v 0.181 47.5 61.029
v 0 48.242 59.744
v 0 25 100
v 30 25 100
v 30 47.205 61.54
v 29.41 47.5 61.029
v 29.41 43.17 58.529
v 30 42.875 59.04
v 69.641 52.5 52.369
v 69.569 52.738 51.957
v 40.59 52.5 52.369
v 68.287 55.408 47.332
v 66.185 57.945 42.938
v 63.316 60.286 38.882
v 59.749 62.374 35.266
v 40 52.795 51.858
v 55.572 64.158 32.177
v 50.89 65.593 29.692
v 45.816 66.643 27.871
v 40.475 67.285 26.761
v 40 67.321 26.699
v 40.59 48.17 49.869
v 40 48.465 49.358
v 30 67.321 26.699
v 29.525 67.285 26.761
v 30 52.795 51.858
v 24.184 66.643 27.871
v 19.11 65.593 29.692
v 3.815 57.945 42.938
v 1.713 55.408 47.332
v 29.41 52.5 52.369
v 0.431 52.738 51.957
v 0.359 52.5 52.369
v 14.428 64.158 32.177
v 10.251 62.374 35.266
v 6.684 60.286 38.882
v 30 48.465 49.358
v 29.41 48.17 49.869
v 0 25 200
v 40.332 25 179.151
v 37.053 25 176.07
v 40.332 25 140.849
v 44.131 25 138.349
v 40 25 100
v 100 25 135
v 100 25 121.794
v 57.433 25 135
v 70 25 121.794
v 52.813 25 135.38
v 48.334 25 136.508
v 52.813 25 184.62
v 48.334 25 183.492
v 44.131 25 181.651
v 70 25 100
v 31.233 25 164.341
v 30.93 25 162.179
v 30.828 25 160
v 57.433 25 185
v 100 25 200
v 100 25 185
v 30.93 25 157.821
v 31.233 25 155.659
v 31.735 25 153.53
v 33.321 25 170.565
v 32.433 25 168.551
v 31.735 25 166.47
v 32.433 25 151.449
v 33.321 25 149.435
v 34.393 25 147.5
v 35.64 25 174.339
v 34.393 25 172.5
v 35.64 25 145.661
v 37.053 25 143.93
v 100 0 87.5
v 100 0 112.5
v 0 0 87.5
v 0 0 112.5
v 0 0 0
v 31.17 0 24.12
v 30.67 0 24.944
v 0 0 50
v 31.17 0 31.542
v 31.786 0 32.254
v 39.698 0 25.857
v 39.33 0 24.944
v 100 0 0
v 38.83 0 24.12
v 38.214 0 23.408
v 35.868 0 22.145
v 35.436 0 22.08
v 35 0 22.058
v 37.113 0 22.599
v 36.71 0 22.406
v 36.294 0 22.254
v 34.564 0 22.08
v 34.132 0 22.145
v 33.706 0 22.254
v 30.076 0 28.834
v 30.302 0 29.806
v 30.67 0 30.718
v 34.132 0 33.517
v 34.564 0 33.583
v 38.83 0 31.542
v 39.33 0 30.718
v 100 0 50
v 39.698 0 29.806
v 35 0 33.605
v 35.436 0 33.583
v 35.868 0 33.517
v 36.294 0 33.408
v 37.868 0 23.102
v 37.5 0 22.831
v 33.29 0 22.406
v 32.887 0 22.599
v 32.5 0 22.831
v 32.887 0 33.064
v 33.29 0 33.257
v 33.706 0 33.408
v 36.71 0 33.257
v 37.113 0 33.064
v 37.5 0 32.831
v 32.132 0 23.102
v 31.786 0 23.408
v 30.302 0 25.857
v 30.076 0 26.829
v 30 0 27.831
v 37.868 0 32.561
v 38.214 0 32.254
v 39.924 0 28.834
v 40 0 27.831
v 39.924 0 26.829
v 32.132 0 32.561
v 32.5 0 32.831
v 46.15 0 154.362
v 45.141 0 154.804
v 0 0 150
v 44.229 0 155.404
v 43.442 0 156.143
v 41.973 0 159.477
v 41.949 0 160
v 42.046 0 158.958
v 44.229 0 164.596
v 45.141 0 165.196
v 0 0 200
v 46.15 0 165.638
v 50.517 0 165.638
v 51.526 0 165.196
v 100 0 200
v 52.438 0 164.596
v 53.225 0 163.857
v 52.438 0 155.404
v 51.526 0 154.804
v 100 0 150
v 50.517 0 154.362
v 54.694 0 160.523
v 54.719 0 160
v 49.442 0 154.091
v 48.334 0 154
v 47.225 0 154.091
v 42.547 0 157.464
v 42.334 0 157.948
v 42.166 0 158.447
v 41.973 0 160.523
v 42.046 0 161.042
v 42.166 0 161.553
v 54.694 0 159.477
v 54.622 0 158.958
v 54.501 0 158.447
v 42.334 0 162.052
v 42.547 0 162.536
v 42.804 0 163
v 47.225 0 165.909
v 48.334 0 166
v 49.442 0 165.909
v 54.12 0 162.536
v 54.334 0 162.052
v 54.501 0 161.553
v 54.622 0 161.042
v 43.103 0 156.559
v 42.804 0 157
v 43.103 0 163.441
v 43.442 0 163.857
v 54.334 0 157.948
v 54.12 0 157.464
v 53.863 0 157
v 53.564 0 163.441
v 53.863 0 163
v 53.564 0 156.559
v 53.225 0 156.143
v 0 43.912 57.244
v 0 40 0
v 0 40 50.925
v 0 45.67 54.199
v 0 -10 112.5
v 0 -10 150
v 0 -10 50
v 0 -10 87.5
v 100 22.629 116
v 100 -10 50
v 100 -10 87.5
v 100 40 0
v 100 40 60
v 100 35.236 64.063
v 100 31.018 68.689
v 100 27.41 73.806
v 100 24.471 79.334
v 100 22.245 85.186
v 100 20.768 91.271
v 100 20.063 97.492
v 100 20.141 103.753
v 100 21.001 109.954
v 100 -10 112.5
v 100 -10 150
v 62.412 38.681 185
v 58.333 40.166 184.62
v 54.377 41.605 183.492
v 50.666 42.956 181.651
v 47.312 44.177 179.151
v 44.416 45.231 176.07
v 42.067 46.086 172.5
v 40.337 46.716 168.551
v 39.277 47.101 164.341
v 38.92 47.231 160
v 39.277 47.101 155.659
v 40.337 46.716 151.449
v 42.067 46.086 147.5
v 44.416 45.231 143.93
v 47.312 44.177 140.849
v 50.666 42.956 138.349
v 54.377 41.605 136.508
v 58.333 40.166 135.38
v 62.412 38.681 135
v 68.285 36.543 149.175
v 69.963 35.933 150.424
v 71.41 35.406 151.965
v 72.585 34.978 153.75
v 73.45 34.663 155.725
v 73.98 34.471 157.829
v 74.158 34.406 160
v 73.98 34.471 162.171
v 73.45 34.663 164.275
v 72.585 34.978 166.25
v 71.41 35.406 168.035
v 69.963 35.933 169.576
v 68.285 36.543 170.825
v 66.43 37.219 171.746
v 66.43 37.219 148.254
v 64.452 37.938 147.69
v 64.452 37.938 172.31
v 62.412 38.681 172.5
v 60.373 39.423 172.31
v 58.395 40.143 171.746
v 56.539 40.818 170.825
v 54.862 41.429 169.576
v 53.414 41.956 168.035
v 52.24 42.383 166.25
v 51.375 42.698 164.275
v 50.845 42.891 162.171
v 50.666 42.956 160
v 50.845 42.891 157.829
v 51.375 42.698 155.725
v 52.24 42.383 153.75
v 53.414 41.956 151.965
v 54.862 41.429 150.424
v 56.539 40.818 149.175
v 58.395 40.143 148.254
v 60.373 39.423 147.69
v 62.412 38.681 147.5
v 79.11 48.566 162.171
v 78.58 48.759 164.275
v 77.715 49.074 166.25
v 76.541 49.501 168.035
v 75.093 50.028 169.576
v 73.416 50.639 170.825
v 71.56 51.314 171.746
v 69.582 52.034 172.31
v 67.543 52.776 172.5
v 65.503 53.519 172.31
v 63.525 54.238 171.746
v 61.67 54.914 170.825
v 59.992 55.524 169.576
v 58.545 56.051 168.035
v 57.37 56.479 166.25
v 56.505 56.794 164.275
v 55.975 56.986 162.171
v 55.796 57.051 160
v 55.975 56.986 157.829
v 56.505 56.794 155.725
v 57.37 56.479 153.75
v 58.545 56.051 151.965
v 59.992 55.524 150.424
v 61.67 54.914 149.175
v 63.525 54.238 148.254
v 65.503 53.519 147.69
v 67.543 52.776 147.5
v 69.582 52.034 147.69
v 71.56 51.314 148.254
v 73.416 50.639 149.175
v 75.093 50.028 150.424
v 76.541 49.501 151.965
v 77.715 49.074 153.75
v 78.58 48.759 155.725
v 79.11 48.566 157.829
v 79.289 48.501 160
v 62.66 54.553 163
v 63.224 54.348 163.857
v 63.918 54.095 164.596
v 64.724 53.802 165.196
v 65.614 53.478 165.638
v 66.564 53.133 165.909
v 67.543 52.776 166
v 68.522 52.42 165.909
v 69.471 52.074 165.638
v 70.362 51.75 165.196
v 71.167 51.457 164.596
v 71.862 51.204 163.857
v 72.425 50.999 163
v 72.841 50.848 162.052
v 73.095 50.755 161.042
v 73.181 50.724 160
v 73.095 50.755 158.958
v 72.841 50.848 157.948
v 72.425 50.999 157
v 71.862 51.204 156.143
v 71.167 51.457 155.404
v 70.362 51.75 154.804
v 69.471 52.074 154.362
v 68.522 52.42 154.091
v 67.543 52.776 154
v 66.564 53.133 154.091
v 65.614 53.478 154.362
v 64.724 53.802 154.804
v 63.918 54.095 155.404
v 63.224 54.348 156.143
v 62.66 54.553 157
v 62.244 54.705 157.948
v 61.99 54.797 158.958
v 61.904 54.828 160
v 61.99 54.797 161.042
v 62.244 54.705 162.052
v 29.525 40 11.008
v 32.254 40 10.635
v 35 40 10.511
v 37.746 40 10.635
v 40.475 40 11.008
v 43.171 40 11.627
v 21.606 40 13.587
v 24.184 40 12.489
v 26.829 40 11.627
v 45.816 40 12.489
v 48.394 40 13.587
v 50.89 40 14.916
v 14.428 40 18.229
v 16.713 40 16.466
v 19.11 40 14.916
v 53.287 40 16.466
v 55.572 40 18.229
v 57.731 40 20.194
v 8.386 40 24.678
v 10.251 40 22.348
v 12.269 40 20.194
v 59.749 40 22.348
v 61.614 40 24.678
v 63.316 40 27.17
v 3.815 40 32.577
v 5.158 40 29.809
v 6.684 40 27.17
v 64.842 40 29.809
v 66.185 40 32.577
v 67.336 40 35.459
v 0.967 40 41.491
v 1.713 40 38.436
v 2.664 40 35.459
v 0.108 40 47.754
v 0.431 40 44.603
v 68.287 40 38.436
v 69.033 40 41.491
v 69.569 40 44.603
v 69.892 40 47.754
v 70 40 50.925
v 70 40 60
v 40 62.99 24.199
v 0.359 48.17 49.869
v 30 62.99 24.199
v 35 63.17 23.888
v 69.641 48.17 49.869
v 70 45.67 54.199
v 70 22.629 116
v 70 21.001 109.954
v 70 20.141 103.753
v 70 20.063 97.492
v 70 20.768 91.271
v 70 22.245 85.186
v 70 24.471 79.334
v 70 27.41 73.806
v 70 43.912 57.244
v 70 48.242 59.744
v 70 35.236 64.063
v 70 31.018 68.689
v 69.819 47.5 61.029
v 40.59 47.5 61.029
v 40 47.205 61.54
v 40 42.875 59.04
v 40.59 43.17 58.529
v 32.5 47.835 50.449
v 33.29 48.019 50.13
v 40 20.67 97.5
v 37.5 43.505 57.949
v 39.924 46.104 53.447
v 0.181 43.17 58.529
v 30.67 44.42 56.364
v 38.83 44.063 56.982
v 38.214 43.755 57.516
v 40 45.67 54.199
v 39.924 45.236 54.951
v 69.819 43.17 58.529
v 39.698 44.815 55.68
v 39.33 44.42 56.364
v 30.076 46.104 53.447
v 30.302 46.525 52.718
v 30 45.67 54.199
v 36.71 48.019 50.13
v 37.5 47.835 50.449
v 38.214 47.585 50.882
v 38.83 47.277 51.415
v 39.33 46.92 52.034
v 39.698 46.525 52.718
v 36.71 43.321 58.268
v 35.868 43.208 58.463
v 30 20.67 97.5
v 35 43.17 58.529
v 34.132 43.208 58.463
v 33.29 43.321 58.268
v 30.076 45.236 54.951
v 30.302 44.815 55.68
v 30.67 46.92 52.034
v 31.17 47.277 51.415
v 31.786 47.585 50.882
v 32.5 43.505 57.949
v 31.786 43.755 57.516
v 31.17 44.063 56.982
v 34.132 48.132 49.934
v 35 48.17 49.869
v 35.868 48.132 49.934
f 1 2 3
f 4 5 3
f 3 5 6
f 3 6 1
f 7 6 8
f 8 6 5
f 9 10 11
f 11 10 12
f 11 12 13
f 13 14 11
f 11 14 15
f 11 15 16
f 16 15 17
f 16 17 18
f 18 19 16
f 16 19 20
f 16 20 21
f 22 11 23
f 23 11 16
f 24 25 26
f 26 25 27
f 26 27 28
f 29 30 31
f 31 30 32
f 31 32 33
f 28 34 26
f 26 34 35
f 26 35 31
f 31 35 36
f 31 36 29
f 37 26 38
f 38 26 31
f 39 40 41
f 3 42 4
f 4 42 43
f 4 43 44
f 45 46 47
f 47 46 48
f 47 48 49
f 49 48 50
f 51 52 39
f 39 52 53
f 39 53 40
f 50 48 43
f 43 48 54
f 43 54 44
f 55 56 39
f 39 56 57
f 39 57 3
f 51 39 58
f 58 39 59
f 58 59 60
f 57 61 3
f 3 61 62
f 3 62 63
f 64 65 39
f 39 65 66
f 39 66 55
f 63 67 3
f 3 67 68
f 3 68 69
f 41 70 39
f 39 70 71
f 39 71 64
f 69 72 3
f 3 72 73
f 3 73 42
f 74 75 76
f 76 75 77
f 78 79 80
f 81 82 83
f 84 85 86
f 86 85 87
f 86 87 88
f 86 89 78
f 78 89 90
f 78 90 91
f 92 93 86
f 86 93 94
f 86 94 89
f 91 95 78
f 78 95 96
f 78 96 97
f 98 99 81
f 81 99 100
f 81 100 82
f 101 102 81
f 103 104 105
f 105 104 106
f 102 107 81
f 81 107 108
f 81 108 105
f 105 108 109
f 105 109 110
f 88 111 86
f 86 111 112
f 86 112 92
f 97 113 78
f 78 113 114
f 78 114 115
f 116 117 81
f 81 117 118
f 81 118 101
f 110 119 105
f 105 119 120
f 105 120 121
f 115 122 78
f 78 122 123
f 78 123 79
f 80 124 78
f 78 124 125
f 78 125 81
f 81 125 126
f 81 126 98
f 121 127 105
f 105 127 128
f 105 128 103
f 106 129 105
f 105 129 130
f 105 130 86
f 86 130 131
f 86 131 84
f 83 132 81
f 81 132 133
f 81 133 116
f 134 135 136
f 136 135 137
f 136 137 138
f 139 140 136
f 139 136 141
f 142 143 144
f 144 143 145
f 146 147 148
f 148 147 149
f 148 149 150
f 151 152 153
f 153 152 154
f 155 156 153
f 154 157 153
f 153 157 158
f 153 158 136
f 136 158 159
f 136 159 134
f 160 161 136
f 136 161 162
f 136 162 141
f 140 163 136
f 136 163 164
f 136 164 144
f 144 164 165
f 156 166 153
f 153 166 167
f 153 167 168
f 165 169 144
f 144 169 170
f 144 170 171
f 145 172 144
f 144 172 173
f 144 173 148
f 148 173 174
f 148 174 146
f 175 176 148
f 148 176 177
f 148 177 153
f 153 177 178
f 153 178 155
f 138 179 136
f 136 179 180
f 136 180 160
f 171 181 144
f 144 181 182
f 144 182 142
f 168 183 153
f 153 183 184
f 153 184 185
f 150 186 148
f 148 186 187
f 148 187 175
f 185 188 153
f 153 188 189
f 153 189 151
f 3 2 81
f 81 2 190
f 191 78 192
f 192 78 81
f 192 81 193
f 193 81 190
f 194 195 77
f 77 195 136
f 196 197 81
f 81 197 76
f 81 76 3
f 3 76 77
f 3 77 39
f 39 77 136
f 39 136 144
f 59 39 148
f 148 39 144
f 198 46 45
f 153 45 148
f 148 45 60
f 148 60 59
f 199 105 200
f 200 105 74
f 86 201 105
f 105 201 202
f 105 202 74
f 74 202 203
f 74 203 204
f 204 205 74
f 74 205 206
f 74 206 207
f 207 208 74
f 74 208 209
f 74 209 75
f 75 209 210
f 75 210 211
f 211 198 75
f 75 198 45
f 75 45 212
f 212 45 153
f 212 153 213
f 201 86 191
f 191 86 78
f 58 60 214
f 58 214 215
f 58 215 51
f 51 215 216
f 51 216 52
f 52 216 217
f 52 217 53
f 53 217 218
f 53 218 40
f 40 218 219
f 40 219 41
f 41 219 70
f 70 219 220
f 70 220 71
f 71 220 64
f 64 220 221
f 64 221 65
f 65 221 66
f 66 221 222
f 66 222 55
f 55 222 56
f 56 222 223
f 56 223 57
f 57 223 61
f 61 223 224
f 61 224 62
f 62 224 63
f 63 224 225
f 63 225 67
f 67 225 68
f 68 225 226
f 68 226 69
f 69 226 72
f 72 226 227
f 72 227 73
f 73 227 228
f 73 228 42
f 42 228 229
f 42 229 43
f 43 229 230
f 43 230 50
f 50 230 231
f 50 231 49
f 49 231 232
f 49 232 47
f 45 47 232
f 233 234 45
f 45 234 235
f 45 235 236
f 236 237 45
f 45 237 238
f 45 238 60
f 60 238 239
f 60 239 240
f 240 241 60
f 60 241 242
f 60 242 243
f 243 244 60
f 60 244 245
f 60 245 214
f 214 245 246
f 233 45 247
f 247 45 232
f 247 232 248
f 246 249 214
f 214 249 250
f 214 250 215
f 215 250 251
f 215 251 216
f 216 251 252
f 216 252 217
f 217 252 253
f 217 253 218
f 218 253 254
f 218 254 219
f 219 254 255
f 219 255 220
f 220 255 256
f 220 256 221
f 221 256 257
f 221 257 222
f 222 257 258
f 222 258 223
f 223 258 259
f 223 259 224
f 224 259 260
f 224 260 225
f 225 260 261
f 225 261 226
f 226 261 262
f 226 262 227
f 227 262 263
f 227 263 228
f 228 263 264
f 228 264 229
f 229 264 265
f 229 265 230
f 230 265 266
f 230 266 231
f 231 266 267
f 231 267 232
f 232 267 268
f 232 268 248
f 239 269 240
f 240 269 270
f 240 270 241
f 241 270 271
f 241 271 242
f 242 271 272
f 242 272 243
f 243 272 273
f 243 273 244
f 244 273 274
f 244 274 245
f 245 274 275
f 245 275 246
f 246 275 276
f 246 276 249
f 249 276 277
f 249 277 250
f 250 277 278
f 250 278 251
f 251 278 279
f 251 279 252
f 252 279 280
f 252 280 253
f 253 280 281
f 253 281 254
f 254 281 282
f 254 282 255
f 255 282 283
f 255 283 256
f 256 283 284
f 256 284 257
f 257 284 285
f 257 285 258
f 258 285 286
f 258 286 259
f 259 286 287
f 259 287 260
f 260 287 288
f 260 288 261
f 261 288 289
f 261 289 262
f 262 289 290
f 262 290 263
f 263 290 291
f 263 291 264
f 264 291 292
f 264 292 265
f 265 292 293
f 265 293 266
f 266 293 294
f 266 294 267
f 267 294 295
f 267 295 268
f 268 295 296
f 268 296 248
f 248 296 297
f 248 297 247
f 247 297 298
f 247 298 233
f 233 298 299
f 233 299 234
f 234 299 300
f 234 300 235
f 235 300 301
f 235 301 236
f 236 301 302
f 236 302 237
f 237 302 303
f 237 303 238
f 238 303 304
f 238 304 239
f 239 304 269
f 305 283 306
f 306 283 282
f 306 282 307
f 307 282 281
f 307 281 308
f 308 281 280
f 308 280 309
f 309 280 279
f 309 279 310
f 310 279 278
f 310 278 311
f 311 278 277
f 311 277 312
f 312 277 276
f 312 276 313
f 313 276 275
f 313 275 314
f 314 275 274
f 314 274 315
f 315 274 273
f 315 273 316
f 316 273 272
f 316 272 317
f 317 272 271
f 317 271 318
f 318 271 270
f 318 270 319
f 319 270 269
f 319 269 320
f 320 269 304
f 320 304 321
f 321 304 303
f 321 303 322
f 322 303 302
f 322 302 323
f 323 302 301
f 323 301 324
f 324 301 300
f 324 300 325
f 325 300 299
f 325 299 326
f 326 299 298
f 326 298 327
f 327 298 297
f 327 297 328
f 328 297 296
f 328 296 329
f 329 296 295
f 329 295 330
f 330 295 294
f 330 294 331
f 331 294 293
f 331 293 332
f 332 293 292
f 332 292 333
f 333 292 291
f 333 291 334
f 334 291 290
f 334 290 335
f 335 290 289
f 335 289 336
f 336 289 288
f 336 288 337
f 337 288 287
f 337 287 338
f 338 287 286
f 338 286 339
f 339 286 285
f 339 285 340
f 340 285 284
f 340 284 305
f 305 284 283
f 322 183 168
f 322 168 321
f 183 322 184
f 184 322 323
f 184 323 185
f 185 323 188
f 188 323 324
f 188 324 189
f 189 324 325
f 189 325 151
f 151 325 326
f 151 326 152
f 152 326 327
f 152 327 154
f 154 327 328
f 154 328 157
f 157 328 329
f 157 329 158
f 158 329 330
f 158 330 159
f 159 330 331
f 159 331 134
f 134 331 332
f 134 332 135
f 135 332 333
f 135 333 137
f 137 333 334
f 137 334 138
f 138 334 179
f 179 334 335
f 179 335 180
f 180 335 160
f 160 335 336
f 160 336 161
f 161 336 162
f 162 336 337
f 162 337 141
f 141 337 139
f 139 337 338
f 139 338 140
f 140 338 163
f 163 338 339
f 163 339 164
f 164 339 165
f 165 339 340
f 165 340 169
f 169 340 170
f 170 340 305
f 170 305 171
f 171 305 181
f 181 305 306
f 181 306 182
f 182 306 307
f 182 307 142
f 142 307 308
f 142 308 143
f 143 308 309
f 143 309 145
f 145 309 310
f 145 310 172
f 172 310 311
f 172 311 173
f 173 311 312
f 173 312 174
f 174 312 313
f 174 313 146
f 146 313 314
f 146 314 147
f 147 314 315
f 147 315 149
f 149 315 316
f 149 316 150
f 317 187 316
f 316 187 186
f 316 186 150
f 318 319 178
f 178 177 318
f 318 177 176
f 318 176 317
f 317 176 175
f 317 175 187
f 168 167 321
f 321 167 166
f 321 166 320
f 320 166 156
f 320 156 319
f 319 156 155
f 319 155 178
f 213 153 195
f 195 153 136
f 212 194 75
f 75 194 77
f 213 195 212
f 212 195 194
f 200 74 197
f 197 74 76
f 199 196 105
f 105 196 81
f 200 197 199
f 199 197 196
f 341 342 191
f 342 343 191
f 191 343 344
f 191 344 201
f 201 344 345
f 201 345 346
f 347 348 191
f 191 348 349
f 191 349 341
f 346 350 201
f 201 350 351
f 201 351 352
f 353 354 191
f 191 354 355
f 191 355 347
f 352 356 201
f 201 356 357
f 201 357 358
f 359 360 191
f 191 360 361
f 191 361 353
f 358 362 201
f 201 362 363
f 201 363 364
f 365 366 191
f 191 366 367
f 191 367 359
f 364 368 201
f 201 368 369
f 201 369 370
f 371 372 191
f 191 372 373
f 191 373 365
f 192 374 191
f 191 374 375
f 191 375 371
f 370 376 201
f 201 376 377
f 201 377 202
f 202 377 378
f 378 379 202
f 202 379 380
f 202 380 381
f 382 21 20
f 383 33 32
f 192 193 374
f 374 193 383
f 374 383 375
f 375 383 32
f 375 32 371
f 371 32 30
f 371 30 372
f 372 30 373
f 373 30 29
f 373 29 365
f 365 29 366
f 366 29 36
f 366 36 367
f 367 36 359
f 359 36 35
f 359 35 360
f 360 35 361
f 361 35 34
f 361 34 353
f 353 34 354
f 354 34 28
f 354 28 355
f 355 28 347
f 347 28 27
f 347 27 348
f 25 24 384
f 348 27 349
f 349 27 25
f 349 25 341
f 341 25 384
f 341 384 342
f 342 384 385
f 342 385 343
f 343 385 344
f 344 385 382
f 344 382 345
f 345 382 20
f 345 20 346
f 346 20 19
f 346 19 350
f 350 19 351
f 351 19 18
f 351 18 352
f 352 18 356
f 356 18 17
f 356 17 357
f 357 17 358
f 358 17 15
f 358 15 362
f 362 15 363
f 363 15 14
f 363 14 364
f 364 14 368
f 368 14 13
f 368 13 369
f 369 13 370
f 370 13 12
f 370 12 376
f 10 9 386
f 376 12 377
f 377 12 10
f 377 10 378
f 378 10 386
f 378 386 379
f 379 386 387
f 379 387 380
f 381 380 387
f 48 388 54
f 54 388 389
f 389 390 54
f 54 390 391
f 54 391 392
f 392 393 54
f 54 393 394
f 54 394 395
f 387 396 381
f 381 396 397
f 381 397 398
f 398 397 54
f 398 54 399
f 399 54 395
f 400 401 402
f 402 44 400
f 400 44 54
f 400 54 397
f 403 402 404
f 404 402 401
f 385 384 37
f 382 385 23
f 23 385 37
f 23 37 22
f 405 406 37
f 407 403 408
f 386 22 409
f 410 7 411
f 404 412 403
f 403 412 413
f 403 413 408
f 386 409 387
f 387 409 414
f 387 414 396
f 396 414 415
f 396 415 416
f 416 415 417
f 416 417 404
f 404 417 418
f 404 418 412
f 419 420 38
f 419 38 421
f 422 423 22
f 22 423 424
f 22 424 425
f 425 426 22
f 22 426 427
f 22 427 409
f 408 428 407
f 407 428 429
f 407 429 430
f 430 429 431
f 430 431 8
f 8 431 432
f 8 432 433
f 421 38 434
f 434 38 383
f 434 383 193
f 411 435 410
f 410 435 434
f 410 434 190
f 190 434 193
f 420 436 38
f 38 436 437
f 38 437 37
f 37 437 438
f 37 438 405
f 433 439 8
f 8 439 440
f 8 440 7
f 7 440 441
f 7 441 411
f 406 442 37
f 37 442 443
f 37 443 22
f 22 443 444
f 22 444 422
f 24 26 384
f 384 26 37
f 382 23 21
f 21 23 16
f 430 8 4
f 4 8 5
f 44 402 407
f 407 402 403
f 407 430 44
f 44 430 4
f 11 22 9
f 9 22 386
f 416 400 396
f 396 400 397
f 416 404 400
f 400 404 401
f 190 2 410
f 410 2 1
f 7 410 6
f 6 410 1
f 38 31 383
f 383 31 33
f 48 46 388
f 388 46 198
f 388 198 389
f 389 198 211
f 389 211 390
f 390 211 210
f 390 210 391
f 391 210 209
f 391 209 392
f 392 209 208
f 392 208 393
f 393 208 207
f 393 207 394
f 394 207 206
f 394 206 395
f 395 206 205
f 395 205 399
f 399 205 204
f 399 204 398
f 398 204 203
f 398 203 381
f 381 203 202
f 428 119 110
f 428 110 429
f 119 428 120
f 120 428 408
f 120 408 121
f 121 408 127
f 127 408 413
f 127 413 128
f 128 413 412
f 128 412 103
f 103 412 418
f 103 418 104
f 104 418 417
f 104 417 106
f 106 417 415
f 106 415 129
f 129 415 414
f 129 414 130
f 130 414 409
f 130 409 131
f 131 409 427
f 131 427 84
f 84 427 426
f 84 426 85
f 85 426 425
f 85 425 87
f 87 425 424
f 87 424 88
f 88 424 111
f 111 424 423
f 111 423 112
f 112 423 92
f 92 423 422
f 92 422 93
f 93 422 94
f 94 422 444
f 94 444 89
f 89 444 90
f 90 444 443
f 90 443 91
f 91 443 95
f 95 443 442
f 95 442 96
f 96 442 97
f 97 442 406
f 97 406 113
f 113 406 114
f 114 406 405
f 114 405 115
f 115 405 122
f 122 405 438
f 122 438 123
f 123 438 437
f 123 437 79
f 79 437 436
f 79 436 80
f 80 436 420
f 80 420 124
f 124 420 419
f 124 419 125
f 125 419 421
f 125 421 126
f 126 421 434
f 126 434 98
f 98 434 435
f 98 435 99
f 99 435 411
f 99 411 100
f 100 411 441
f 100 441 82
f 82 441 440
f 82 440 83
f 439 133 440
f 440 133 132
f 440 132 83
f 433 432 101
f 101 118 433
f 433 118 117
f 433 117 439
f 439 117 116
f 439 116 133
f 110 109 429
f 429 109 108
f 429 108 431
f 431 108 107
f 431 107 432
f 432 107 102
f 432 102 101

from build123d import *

# Parameters (mm, degrees)
SKETCH1_W            = 100
SKETCH1_H            = 200
BOSS_EXTRUDE1_DEPTH  = 25
BOSS_EXTRUDE3_REACH  = 224.221
SKETCH4_R            = 12.5
BOSS_EXTRUDE4_DEPTH  = 15
SKETCH5_R            = 6
CUT_EXTRUDE1_DEPTH   = 225.303099777
SKETCH6_W            = 100
SKETCH6_H            = 37.5
BOSS_EXTRUDE5_DEPTH  = 10
SKETCH7_W            = 100
SKETCH7_H            = 37.5
BOSS_EXTRUDE6_DEPTH  = 10
SKETCH8_W            = 100
SKETCH8_H            = 60
BOSS_EXTRUDE7_DEPTH  = 15
BOSS_EXTRUDE9_DEPTH  = 37
SKETCH12_R           = 7.5
CUT_EXTRUDE7_DEPTH   = 5
CUT_EXTRUDE8_DEPTH   = 5
CUT_EXTRUDE9_DEPTH   = 5
BOSS_EXTRUDE10_DEPTH = 30
CUT_EXTRUDE10_DEPTH  = 30
SKETCH18_R           = 5
CUT_EXTRUDE11_DEPTH  = 206.831491767


with BuildPart() as part:
    # Sketch1 → Boss-Extrude1 (new body)
    with BuildSketch(Plane(origin=(0, 0, 0), x_dir=(1, 0, 0), z_dir=(0, 1, 0))):
        with Locations((50, -100)):
            Rectangle(SKETCH1_W, SKETCH1_H)
    extrude(amount=BOSS_EXTRUDE1_DEPTH)

    # Boss-Extrude3: up to this face of the body (flat: up to its plane)
    boss_extrude3_end = Plane(part.part.faces().sort_by_distance((50, 0, 100))[0])
    # Sketch3 → Boss-Extrude3 (add, up to the picked face)
    with BuildSketch(Plane(origin=(19.732622965, 54.214936023, 0), x_dir=(0, 0, -1), z_dir=(0.34202014332566943, 0.9396926207859081, 0)), mode=Mode.PRIVATE) as boss_extrude3_sk1:
        with BuildLine():
            Line((-185, -85.418758495), (-135, -85.418758495))
            Line((-135, -85.418758495), (-135, -45.418758495))
            ThreePointArc((-135, -45.418758495), (-160, -20.418758495), (-185, -45.418758495))
            Line((-185, -45.418758495), (-185, -85.418758495))
        make_face()
    boss_extrude3_tool1 = split(extrude(boss_extrude3_sk1.sketch, amount=-BOSS_EXTRUDE3_REACH, mode=Mode.PRIVATE), bisect_by=boss_extrude3_end, keep=Keep.BOTH, mode=Mode.PRIVATE)
    add(boss_extrude3_tool1.solids().sort_by(Axis((71.735431, 35.287462, 160), (-0.34202014332566943, -0.9396926207859081, 0)))[0])

    # Sketch4 → Boss-Extrude4 (add)
    with BuildSketch(Plane(origin=(19.732622965, 54.214936023, 0), x_dir=(0.9396926207859082, -0.34202014332566943, 0), z_dir=(0.34202014332566943, 0.9396926207859082, 0))):
        with Locations(Location((45.418758495, -160, 0), (0, 0, 180))):
            Circle(SKETCH4_R)
    extrude(amount=BOSS_EXTRUDE4_DEPTH)

    # Sketch5 → Cut-Extrude1 (cut, through all)
    with BuildSketch(Plane(origin=(24.862925115, 68.310325335, 0), x_dir=(0.9396926207859082, -0.34202014332566943, 0), z_dir=(0.34202014332566943, 0.9396926207859082, 0))):
        with Locations(Location((45.418758495, -160, 0), (0, 0, 180))):
            Circle(SKETCH5_R)
    extrude(amount=-CUT_EXTRUDE1_DEPTH, mode=Mode.SUBTRACT)

    # Sketch6 → Boss-Extrude5 (add)
    with BuildSketch(Plane.XZ):
        with Locations((50, 131.25)):
            Rectangle(SKETCH6_W, SKETCH6_H)
    extrude(amount=BOSS_EXTRUDE5_DEPTH)

    # Sketch7 → Boss-Extrude6 (add)
    with BuildSketch(Plane.XZ):
        with Locations((50, 68.75)):
            Rectangle(SKETCH7_W, SKETCH7_H)
    extrude(amount=BOSS_EXTRUDE6_DEPTH)

    # Sketch8 → Boss-Extrude7 (add)
    with BuildSketch(Plane(origin=(0, 25, 0), x_dir=(1, 0, 0), z_dir=(0, 1, 0))):
        with Locations((50, -30)):
            Rectangle(SKETCH8_W, SKETCH8_H)
    extrude(amount=BOSS_EXTRUDE7_DEPTH)

    # Sketch10 → Boss-Extrude9 (add)
    with BuildSketch(Plane(origin=(0, 62.051270189, 35.825317547), x_dir=(1, 0, 0), z_dir=(0, 0.866025403784438, 0.500000000000001))):
        with BuildLine():
            Line((0, -74.102540378), (70, -74.102540378))
            Line((70, -74.102540378), (70, -24.102540378))
            ThreePointArc((70, -24.102540378), (35, 10.897459622), (0, -24.102540378))
            Line((0, -24.102540378), (0, -74.102540378))
        make_face()
    extrude(amount=-BOSS_EXTRUDE9_DEPTH)

    # Sketch12 → Cut-Extrude7 (cut)
    with BuildSketch(Plane(origin=(0, 62.051270189, 35.825317547), x_dir=(1, 0, 0), z_dir=(0, 0.8660254037844382, 0.500000000000001))):
        with Locations(Location((35, -24.102540378, 0), (0, 0, 270))):
            Circle(SKETCH12_R)
    extrude(amount=-CUT_EXTRUDE7_DEPTH, mode=Mode.SUBTRACT)

    # Sketch13 → Cut-Extrude8 (cut)
    with BuildSketch(Plane(origin=(0, 62.051270189, 35.825317547), x_dir=(1, 0, 0), z_dir=(0, 0.8660254037844382, 0.500000000000001))):
        with BuildLine():
            Line((35, -74.102540378), (40, -74.102540378))
            Line((40, -74.102540378), (40, -29.507888224))
            ThreePointArc((40, -29.507888224), (35, -31.465813111), (30, -29.507888224))
            Line((30, -29.507888224), (30, -74.102540378))
            Line((30, -74.102540378), (35, -74.102540378))
        make_face()
        with BuildLine():
            Line((40, -18.697192533), (40, 10.538475773))
            ThreePointArc((40, 10.538475773), (35, 10.897459622), (30, 10.538475773))
            Line((30, 10.538475773), (30, -18.697192533))
            ThreePointArc((30, -18.697192533), (35, -16.739267646), (40, -18.697192533))
        make_face()
    extrude(amount=-CUT_EXTRUDE8_DEPTH, mode=Mode.SUBTRACT)

    # Sketch14 → Cut-Extrude9 (cut)
    with BuildSketch(Plane(origin=(0, 62.051270189, 35.825317547), x_dir=(1, 0, 0), z_dir=(0, 0.8660254037844382, 0.500000000000001))):
        with BuildLine():
            Line((29.409830056, -19.102540378), (0.181014248, -19.102540378))
            ThreePointArc((0.181014248, -19.102540378), (-0.176153411, -24.102540378), (0.181014248, -29.102540378))
            Line((0.181014248, -29.102540378), (29.409830056, -29.102540378))
            ThreePointArc((29.409830056, -29.102540378), (27.5, -24.102540378), (29.409830056, -19.102540378))
        make_face()
        with BuildLine():
            Line((40.590169944, -19.102540378), (69.818985752, -19.102540378))
            ThreePointArc((69.818985752, -19.102540378), (70.176153411, -24.102540378), (69.818985752, -29.102540378))
            Line((69.818985752, -29.102540378), (40.590169944, -29.102540378))
            ThreePointArc((40.590169944, -29.102540378), (42.5, -24.102540378), (40.590169944, -19.102540378))
        make_face()
    extrude(amount=-CUT_EXTRUDE9_DEPTH, mode=Mode.SUBTRACT)

    # Sketch16 → Boss-Extrude10 (add)
    with BuildSketch(Plane(origin=(100, 0, 0), x_dir=(0, 0, -1), z_dir=(1, 0, 0))):
        with BuildLine():
            Line((-121.794494718, 25), (-200, 25))
            Line((-200, 25), (-200, 0))
            Line((-200, 0), (-150, 0))
            Line((-150, 0), (-150, -10))
            Line((-150, -10), (-112.5, -10))
            Line((-112.5, -10), (-112.5, 0))
            Line((-112.5, 0), (-87.5, 0))
            Line((-87.5, 0), (-87.5, -10))
            Line((-87.5, -10), (-50, -10))
            Line((-50, -10), (-50, 0))
            Line((-50, 0), (0, 0))
            Line((0, 0), (0, 40))
            Line((0, 40), (-60, 40))
            ThreePointArc((-60, 40), (-88.205505282, 21.411010565), (-121.794494718, 25))
        make_face()
    extrude(amount=-BOSS_EXTRUDE10_DEPTH)

    # Sketch17 → Cut-Extrude10 (cut)
    with BuildSketch(Plane(origin=(100, 0, 0), x_dir=(0, 0, -1), z_dir=(1, 0, 0))):
        with BuildLine():
            Line((-121.794494718, 25), (-78.205505282, 25))
            ThreePointArc((-78.205505282, 25), (-100, 20), (-121.794494718, 25))
        make_face()
    extrude(amount=-CUT_EXTRUDE10_DEPTH, mode=Mode.SUBTRACT)

    # Sketch18 → Cut-Extrude11 (cut, through all)
    with BuildSketch(Plane(origin=(0, 57.72114317, 33.325317547), x_dir=(1, 0, 0), z_dir=(0, 0.8660254037844382, 0.5000000000000011))):
        with Locations(Location((35, -24.102540378, 0), (0, 0, 270))):
            Circle(SKETCH18_R)
    extrude(amount=-CUT_EXTRUDE11_DEPTH, mode=Mode.SUBTRACT)


solid = part.part
